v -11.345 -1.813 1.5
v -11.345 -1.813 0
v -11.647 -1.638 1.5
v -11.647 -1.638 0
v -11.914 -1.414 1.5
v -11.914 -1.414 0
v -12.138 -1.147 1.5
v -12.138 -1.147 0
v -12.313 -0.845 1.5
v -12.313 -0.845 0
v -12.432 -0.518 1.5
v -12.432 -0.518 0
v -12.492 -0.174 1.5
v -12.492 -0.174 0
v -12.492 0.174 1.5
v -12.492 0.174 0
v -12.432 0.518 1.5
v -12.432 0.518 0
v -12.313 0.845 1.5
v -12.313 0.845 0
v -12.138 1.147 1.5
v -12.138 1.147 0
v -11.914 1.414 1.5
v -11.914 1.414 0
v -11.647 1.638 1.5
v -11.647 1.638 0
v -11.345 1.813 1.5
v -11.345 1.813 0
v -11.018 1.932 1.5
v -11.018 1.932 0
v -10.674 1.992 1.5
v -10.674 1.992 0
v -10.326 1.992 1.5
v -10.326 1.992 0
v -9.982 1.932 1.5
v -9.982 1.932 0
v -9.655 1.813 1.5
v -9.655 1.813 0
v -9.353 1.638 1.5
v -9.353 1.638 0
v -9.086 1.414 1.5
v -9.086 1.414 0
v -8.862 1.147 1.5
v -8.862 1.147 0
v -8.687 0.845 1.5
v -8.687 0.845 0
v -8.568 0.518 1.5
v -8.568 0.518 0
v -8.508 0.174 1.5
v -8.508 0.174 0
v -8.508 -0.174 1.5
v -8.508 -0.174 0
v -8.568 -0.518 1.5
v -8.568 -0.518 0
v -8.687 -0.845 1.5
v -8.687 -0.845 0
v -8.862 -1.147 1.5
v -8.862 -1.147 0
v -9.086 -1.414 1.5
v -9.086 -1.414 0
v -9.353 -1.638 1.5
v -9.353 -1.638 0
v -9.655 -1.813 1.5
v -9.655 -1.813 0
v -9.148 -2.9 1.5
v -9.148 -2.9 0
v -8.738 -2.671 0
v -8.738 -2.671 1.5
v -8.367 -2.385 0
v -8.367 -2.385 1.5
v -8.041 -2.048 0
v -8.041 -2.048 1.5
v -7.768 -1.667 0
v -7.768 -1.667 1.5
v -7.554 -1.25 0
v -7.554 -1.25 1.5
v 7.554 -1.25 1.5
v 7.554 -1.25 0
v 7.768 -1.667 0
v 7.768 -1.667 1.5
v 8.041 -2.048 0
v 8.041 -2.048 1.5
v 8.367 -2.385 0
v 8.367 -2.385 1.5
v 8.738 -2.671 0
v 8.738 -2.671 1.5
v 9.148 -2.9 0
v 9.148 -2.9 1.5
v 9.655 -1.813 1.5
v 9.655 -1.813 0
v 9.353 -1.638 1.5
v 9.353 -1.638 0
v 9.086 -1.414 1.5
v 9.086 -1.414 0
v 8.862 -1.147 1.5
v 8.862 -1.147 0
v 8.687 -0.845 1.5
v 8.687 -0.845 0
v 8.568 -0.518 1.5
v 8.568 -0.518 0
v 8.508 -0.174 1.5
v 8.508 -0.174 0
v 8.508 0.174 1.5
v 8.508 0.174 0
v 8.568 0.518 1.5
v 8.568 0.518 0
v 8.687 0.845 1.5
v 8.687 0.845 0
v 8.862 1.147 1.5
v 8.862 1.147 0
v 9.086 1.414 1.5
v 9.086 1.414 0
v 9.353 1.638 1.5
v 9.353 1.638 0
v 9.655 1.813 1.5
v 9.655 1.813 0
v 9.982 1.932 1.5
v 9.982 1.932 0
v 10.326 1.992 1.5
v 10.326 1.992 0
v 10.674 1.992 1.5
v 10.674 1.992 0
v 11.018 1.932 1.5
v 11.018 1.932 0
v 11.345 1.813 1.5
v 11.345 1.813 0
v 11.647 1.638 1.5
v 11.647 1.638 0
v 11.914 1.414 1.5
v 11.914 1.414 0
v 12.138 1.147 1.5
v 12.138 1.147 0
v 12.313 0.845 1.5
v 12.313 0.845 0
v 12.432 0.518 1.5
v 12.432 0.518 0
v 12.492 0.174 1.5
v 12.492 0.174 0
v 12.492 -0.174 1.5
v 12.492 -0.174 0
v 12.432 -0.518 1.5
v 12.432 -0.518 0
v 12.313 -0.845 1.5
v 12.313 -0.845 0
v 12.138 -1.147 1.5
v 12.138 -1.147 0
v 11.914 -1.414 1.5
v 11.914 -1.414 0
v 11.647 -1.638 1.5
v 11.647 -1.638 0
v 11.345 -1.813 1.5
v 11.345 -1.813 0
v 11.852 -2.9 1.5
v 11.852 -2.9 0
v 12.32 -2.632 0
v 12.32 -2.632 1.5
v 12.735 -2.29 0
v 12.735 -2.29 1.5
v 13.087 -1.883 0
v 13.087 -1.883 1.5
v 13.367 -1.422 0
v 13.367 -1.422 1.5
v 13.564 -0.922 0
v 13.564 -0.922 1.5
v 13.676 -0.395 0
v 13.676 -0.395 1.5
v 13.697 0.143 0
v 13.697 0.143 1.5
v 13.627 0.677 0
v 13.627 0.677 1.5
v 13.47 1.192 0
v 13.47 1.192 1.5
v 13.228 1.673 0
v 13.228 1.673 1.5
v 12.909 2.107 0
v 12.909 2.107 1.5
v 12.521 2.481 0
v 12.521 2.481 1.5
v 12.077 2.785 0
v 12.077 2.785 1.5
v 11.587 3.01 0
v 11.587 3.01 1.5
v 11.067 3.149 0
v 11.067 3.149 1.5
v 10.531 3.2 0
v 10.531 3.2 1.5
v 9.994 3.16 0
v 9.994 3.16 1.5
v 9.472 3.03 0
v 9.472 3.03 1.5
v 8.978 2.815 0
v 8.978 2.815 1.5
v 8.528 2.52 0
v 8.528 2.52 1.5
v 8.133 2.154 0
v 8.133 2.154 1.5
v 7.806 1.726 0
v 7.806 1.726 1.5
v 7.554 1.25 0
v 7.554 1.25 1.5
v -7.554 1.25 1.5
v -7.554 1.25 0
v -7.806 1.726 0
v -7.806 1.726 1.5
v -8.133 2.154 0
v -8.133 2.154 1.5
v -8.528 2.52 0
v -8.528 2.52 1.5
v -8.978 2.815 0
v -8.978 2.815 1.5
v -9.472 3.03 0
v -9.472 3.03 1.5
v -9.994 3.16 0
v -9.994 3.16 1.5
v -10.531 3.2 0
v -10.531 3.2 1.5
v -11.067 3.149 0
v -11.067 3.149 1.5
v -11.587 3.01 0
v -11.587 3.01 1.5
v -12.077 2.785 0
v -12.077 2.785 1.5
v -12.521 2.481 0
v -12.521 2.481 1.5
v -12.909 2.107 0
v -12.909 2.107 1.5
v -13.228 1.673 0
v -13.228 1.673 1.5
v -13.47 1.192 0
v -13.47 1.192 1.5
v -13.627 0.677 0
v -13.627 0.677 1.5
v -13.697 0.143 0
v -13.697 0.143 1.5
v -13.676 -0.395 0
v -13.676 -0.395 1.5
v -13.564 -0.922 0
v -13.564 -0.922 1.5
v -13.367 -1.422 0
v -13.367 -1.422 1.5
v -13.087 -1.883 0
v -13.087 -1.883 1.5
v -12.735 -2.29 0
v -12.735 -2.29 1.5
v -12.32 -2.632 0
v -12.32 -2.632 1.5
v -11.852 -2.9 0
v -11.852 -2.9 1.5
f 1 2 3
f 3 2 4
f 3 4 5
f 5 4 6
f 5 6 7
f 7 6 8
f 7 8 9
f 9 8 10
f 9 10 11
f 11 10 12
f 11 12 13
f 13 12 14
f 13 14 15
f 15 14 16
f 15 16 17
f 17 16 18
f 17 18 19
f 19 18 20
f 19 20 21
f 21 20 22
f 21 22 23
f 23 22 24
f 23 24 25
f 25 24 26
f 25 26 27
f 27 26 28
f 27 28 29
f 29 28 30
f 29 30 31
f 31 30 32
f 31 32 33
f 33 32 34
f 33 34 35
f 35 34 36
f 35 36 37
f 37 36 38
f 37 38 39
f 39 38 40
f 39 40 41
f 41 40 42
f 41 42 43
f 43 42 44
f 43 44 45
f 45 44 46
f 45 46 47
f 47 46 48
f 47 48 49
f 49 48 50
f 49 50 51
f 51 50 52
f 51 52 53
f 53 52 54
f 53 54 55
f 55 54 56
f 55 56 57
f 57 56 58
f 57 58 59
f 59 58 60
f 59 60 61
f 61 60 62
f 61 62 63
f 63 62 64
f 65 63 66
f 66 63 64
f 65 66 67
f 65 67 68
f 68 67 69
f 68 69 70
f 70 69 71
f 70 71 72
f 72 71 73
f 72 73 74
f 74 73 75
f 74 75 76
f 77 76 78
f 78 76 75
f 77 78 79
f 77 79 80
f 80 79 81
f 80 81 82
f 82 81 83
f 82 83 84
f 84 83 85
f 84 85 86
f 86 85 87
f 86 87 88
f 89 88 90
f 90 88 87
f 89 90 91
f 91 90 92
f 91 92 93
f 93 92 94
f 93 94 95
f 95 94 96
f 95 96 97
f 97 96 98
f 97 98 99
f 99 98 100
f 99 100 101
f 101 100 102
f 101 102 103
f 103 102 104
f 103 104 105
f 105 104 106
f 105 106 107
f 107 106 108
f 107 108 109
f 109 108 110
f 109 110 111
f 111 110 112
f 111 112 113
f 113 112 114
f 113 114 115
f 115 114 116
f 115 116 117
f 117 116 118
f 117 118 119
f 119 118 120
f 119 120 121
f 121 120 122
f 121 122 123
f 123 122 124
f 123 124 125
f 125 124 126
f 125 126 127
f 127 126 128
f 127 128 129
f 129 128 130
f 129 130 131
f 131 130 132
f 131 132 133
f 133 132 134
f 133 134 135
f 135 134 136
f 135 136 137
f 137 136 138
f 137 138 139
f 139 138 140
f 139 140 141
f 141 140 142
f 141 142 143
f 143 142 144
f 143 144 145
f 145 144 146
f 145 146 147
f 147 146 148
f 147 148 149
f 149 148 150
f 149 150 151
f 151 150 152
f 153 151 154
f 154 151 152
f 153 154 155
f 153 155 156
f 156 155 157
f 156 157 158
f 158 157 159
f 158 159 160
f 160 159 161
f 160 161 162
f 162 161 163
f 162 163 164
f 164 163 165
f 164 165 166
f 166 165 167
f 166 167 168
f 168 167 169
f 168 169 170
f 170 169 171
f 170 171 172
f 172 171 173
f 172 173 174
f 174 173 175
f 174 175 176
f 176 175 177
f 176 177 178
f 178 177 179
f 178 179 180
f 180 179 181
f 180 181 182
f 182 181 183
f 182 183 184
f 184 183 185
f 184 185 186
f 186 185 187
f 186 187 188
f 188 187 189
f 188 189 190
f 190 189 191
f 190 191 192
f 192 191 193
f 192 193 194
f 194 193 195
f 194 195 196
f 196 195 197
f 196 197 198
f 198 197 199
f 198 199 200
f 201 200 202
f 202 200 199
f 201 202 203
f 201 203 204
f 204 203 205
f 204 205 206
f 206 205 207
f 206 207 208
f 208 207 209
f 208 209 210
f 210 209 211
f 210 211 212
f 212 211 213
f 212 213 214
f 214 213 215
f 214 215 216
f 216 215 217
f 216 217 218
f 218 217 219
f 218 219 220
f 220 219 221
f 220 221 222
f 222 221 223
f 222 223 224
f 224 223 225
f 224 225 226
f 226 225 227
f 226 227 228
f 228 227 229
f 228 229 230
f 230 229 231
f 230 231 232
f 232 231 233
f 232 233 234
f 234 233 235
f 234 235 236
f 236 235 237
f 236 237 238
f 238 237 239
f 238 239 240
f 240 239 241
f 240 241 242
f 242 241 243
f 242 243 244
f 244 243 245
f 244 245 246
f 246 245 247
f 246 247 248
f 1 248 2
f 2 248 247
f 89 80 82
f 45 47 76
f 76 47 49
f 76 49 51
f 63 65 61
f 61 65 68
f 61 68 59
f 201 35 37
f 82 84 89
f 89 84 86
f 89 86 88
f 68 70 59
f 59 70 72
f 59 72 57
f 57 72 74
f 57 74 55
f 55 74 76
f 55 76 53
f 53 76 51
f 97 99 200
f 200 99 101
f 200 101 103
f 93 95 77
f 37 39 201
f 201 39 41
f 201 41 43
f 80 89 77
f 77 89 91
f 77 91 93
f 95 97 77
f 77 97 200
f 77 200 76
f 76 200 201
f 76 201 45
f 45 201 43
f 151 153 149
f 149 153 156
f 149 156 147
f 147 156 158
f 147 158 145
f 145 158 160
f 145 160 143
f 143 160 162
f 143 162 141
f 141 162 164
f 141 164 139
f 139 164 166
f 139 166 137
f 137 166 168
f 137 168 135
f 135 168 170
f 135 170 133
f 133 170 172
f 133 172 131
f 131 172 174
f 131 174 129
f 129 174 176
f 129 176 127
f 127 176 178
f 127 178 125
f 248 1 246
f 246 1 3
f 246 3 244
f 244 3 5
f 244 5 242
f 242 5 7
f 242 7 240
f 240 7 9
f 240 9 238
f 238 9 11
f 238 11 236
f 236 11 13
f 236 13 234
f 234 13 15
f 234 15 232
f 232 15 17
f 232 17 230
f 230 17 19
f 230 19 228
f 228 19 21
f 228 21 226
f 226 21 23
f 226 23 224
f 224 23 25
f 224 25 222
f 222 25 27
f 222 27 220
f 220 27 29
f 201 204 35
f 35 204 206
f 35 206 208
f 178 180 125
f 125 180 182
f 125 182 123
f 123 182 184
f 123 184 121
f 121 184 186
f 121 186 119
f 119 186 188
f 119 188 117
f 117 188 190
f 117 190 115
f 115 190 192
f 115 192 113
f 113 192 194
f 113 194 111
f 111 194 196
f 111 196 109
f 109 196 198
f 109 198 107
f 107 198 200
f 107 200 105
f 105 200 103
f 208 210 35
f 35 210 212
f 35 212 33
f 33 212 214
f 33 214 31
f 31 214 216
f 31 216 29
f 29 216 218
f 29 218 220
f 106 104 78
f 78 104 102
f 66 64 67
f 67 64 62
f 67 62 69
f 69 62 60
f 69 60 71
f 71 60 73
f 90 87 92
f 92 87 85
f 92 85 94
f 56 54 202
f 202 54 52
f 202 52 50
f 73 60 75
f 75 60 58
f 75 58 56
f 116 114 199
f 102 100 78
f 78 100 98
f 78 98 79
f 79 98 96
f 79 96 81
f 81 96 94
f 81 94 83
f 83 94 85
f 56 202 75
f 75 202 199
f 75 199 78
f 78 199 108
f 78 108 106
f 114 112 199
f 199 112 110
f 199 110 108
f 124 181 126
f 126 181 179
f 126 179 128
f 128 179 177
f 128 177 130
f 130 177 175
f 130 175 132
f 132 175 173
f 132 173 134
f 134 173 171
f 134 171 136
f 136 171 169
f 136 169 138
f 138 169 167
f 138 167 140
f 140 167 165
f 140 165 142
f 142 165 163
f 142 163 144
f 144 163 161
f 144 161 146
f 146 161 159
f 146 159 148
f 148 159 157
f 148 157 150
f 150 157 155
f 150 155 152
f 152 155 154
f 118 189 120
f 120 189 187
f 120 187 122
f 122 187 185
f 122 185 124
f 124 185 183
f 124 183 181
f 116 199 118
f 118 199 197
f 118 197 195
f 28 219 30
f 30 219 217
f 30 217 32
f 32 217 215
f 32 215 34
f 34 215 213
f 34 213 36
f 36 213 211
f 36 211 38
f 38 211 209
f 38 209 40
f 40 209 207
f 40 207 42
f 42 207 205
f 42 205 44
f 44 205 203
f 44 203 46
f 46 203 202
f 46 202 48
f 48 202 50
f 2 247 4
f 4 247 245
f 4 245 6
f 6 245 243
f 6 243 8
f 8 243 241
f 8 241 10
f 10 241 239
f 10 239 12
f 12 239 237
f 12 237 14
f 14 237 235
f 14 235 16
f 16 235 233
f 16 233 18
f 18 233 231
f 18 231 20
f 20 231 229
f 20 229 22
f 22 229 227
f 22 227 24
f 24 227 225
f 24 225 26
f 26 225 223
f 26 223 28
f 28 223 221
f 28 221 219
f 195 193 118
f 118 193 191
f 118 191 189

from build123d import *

# Parameters (mm, degrees)
BOSS_EXTRU_1_DEPTH = 1.5


with BuildPart() as part:
    # Esquisse1 → Boss.-Extru.1 (new body)
    with BuildSketch(Plane.XY):
        with BuildLine():
            Line((-11.852378438, -2.900184919), (-11.345236523, -1.812615574))
            ThreePointArc((-11.345236523, -1.812615574), (-12.072600453, 1.235689207), (-8.9387505, 1.25))
            Line((-8.9387505, 1.25), (-7.554240336, 1.25))
            ThreePointArc((-7.554240336, 1.25), (-12.722774088, 2.302015498), (-11.852378438, -2.900184919))
        make_face()
        with BuildLine():
            ThreePointArc((-8.5, 0), (-8.612872686, -0.662382443), (-8.9387505, -1.25))
            Line((-8.9387505, -1.25), (-7.554240336, -1.25))
            ThreePointArc((-7.554240336, -1.25), (-7.364204174, -0.637796627), (-7.3, 0))
            ThreePointArc((-7.3, 0), (-7.364204174, 0.637796627), (-7.554240336, 1.25))
            Line((-7.554240336, 1.25), (-8.9387505, 1.25))
            ThreePointArc((-8.9387505, 1.25), (-8.612872686, 0.662382443), (-8.5, 0))
        make_face()
        with BuildLine():
            ThreePointArc((-7.3, 0), (-7.364204174, -0.637796627), (-7.554240336, -1.25))
            Line((-7.554240336, -1.25), (7.554240336, -1.25))
            ThreePointArc((7.554240336, -1.25), (7.3, 0), (7.554240336, 1.25))
            Line((7.554240336, 1.25), (-7.554240336, 1.25))
            ThreePointArc((-7.554240336, 1.25), (-7.364204174, 0.637796627), (-7.3, 0))
        make_face()
        with BuildLine():
            ThreePointArc((7.554240336, 1.25), (7.3, 0), (7.554240336, -1.25))
            Line((7.554240336, -1.25), (8.9387505, -1.25))
            ThreePointArc((8.9387505, -1.25), (8.5, 0), (8.9387505, 1.25))
            Line((8.9387505, 1.25), (7.554240336, 1.25))
        make_face()
        with BuildLine():
            ThreePointArc((13.7, 0), (11.137796627, 3.135795826), (7.554240336, 1.25))
            Line((7.554240336, 1.25), (8.9387505, 1.25))
            ThreePointArc((8.9387505, 1.25), (11.162382443, 1.887127314), (12.5, 0))
            ThreePointArc((12.5, 0), (12.186782892, -1.074599217), (11.345236523, -1.812615574))
            Line((11.345236523, -1.812615574), (11.852378438, -2.900184919))
            ThreePointArc((11.852378438, -2.900184919), (13.198852627, -1.719358747), (13.7, 0))
        make_face()
        with BuildLine():
            ThreePointArc((-8.9387505, -1.25), (-9.264310793, -1.572600453), (-9.654763477, -1.812615574))
            Line((-9.654763477, -1.812615574), (-9.147621562, -2.900184919))
            ThreePointArc((-9.147621562, -2.900184919), (-8.197984502, -2.222774088), (-7.554240336, -1.25))
            Line((-7.554240336, -1.25), (-8.9387505, -1.25))
        make_face()
        with BuildLine():
            Line((8.9387505, -1.25), (7.554240336, -1.25))
            ThreePointArc((7.554240336, -1.25), (8.197984502, -2.222774088), (9.147621562, -2.900184919))
            Line((9.147621562, -2.900184919), (9.654763477, -1.812615574))
            ThreePointArc((9.654763477, -1.812615574), (9.264310793, -1.572600453), (8.9387505, -1.25))
        make_face()
    extrude(amount=BOSS_EXTRU_1_DEPTH)


solid = part.part
